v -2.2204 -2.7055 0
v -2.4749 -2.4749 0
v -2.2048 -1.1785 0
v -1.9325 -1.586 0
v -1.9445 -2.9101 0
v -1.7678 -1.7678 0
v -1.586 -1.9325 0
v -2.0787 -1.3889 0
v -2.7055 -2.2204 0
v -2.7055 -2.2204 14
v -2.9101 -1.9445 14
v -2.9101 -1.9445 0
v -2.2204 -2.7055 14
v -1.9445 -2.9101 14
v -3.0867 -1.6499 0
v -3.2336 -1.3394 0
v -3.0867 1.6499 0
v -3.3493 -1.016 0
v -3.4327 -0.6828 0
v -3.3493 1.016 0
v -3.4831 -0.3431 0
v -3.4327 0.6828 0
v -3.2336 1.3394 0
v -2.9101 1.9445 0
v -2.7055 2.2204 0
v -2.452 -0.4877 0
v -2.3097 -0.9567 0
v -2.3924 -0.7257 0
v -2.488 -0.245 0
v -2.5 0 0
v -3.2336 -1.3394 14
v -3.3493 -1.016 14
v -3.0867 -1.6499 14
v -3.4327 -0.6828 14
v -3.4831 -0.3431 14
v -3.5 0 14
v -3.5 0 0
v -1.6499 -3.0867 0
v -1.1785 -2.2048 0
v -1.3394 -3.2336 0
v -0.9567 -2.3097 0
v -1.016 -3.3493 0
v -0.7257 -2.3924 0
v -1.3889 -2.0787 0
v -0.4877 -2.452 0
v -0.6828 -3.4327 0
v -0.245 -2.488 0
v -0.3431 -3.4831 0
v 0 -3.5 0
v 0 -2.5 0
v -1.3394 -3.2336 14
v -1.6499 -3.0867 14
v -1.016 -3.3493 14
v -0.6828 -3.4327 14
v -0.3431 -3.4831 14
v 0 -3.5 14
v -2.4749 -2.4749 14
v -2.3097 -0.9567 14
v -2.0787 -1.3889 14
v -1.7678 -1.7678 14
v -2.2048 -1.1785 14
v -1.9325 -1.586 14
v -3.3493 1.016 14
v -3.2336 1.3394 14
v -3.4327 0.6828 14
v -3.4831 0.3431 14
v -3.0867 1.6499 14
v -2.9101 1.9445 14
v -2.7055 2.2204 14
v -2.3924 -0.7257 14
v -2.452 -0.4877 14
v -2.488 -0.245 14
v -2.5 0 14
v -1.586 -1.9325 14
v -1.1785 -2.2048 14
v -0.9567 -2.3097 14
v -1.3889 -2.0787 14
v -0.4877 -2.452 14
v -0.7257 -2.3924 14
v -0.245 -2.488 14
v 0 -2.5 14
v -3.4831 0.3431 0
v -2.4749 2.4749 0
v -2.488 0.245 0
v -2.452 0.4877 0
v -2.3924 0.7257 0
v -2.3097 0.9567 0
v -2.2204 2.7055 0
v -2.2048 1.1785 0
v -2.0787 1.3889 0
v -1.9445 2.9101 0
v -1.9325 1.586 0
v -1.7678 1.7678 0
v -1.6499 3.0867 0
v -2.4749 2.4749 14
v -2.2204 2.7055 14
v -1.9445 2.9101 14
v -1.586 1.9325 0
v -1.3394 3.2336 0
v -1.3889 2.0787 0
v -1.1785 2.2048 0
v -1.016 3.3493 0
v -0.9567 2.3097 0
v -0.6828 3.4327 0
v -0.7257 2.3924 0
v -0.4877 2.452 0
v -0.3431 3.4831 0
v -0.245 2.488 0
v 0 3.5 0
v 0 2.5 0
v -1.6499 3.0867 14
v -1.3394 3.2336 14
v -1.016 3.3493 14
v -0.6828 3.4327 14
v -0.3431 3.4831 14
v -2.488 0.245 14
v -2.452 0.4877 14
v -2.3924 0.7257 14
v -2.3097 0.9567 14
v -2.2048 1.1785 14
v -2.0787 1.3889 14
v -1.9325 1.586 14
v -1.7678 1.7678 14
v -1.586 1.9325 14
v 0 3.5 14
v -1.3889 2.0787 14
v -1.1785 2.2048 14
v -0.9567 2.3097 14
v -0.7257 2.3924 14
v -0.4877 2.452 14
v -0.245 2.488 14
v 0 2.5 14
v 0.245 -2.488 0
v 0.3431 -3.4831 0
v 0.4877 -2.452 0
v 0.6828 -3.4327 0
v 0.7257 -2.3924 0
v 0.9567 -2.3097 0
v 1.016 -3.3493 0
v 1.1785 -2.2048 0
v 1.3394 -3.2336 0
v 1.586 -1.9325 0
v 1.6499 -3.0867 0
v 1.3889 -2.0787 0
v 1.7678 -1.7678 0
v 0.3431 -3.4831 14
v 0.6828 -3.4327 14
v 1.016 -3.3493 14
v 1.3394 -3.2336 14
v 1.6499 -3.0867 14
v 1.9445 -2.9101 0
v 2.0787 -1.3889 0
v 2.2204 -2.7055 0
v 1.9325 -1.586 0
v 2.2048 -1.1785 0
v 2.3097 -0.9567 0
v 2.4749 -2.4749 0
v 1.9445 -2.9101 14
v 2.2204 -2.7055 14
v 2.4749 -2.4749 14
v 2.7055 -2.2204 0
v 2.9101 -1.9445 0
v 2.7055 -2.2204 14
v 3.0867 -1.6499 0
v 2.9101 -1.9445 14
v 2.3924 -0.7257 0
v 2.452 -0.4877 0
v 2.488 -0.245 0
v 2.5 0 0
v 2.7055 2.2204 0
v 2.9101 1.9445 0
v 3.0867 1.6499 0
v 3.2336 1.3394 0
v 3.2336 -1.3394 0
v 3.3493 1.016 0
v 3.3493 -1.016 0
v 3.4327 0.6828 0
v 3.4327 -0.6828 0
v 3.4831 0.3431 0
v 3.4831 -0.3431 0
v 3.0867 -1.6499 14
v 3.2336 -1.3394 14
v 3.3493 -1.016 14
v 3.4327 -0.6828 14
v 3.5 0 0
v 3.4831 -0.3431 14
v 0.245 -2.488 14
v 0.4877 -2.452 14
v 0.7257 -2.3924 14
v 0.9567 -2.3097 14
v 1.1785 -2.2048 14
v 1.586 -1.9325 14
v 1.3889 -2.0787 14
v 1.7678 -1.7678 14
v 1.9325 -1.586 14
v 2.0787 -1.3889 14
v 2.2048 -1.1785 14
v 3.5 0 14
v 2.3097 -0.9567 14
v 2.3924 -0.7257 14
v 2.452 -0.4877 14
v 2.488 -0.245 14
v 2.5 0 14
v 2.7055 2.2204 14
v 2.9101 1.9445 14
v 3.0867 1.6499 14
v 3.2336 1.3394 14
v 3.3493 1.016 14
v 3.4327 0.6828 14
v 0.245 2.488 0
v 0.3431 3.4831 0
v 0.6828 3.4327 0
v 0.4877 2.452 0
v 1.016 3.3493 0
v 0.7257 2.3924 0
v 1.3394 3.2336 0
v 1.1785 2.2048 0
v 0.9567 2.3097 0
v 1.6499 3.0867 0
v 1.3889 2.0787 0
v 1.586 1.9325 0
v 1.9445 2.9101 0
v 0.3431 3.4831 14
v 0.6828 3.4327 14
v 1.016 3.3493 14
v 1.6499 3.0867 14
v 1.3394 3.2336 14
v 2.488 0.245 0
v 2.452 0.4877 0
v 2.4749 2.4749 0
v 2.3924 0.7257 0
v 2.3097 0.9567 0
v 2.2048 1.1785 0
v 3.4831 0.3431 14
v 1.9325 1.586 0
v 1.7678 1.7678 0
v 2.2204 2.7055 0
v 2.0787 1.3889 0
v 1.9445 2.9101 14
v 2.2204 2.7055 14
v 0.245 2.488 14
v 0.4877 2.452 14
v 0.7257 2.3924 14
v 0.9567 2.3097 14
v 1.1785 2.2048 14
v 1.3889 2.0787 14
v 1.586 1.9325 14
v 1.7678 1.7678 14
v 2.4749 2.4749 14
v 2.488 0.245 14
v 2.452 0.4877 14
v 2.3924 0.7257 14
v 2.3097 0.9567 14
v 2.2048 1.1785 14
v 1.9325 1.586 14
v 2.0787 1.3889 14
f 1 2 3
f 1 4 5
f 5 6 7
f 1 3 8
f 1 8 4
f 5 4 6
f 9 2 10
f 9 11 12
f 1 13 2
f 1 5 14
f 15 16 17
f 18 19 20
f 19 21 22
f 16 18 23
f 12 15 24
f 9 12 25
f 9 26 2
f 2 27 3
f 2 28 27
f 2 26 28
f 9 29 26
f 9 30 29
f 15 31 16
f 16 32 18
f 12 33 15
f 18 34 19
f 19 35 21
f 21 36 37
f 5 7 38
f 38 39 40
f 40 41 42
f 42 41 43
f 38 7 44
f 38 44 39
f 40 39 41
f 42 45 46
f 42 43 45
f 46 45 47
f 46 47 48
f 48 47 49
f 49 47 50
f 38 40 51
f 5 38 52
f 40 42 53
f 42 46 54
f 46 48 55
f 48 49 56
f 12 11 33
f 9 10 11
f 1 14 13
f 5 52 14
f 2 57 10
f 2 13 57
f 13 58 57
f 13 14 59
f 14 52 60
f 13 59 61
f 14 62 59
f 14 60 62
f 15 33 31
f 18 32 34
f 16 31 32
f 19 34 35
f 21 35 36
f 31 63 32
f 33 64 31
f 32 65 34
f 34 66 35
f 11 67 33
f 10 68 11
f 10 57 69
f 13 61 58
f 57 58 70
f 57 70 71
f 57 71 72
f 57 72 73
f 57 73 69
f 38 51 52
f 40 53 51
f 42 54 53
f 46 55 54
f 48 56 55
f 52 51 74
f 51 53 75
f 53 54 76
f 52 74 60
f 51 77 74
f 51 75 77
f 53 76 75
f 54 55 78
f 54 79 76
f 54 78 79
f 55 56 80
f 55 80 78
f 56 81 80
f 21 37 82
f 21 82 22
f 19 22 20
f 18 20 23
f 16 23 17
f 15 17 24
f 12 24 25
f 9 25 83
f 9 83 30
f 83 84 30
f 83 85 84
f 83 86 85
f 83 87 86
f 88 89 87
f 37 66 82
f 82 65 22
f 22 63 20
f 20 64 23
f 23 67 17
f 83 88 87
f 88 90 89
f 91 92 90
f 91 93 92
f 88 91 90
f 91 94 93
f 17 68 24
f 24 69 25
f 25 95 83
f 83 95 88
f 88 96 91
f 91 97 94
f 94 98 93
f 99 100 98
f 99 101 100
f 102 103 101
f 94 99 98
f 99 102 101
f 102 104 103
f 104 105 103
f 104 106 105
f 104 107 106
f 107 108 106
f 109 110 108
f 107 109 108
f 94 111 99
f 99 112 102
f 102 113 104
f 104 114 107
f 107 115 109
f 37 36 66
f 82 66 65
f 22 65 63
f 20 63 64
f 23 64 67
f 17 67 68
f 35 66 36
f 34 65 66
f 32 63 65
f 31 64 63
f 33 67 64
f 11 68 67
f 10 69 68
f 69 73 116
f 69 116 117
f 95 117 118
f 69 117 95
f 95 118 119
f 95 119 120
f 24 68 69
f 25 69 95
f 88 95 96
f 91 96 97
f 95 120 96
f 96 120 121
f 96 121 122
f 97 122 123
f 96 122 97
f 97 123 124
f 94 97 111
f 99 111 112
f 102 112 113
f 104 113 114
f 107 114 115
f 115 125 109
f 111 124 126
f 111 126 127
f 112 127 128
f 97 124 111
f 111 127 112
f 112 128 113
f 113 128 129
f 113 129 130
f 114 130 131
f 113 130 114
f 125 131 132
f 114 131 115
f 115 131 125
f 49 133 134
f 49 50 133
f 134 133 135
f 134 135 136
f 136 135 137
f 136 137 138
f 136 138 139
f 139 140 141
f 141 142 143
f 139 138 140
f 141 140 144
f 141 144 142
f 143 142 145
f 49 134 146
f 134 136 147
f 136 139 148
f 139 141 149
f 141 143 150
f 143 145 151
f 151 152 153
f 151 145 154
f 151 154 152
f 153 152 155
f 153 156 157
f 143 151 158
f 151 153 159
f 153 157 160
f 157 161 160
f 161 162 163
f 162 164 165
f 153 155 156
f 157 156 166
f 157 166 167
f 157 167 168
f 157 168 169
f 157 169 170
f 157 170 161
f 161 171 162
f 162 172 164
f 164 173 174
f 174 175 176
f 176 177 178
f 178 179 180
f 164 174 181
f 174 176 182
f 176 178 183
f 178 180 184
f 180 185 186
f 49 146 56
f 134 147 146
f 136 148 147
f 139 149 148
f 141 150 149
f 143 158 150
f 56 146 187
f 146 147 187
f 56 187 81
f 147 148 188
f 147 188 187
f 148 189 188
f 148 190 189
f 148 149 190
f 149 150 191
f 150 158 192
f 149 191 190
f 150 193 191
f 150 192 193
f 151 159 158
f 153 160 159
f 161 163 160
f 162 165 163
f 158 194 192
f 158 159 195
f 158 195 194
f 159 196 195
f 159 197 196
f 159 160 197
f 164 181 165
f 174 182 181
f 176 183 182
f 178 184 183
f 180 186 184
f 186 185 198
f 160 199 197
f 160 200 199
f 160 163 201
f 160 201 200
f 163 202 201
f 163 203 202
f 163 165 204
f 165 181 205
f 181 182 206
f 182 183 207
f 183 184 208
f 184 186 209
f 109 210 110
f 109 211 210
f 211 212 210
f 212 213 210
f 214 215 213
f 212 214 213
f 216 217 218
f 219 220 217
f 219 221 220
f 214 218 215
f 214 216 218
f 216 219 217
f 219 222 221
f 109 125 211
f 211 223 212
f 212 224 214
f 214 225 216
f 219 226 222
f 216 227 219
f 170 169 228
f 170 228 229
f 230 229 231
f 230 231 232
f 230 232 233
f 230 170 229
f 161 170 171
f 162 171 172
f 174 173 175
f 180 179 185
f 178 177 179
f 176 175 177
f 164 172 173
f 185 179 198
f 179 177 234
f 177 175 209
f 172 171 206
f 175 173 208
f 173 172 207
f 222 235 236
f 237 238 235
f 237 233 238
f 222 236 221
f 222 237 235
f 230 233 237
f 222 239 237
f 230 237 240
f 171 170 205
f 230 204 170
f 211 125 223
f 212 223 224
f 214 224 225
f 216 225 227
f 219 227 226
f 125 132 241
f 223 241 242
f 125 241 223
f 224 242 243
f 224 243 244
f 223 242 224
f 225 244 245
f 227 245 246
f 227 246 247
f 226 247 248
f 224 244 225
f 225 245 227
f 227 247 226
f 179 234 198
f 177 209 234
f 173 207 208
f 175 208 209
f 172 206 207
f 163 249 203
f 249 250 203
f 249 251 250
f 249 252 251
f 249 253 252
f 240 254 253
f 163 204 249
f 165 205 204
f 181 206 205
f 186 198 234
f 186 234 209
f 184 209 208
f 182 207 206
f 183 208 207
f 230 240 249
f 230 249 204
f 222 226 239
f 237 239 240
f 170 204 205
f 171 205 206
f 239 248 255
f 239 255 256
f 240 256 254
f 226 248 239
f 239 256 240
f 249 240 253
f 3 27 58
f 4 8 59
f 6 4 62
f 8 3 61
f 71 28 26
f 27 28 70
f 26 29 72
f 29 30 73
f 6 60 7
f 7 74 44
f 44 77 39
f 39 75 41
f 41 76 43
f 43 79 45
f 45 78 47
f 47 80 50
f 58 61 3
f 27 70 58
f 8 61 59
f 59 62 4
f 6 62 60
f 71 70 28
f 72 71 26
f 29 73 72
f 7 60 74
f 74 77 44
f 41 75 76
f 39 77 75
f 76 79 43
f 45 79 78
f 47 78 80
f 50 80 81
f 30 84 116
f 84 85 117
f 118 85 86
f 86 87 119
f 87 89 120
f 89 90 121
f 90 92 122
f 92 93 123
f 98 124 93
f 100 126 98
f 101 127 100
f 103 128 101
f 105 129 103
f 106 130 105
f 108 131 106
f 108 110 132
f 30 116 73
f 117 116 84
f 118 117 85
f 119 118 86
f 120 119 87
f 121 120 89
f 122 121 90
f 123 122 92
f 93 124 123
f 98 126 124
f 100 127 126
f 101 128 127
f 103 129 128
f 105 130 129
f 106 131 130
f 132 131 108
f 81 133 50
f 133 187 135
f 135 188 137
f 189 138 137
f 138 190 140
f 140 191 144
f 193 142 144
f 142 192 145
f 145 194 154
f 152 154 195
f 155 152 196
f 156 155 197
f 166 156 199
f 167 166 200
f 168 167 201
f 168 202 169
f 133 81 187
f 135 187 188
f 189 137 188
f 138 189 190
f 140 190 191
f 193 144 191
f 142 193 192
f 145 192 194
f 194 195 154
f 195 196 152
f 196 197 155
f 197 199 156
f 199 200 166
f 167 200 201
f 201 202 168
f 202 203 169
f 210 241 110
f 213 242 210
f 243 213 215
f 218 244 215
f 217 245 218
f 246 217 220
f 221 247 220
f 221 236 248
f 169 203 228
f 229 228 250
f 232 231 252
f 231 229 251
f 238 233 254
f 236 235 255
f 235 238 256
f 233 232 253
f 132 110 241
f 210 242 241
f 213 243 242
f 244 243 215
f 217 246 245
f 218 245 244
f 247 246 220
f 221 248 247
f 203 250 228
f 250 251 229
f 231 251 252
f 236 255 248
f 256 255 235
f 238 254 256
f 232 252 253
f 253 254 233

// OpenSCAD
$fn = 64;

difference() {
  cylinder(d=7, h=14);
  translate([0,0,-0.1]) cylinder(d=5, h=15);
}
